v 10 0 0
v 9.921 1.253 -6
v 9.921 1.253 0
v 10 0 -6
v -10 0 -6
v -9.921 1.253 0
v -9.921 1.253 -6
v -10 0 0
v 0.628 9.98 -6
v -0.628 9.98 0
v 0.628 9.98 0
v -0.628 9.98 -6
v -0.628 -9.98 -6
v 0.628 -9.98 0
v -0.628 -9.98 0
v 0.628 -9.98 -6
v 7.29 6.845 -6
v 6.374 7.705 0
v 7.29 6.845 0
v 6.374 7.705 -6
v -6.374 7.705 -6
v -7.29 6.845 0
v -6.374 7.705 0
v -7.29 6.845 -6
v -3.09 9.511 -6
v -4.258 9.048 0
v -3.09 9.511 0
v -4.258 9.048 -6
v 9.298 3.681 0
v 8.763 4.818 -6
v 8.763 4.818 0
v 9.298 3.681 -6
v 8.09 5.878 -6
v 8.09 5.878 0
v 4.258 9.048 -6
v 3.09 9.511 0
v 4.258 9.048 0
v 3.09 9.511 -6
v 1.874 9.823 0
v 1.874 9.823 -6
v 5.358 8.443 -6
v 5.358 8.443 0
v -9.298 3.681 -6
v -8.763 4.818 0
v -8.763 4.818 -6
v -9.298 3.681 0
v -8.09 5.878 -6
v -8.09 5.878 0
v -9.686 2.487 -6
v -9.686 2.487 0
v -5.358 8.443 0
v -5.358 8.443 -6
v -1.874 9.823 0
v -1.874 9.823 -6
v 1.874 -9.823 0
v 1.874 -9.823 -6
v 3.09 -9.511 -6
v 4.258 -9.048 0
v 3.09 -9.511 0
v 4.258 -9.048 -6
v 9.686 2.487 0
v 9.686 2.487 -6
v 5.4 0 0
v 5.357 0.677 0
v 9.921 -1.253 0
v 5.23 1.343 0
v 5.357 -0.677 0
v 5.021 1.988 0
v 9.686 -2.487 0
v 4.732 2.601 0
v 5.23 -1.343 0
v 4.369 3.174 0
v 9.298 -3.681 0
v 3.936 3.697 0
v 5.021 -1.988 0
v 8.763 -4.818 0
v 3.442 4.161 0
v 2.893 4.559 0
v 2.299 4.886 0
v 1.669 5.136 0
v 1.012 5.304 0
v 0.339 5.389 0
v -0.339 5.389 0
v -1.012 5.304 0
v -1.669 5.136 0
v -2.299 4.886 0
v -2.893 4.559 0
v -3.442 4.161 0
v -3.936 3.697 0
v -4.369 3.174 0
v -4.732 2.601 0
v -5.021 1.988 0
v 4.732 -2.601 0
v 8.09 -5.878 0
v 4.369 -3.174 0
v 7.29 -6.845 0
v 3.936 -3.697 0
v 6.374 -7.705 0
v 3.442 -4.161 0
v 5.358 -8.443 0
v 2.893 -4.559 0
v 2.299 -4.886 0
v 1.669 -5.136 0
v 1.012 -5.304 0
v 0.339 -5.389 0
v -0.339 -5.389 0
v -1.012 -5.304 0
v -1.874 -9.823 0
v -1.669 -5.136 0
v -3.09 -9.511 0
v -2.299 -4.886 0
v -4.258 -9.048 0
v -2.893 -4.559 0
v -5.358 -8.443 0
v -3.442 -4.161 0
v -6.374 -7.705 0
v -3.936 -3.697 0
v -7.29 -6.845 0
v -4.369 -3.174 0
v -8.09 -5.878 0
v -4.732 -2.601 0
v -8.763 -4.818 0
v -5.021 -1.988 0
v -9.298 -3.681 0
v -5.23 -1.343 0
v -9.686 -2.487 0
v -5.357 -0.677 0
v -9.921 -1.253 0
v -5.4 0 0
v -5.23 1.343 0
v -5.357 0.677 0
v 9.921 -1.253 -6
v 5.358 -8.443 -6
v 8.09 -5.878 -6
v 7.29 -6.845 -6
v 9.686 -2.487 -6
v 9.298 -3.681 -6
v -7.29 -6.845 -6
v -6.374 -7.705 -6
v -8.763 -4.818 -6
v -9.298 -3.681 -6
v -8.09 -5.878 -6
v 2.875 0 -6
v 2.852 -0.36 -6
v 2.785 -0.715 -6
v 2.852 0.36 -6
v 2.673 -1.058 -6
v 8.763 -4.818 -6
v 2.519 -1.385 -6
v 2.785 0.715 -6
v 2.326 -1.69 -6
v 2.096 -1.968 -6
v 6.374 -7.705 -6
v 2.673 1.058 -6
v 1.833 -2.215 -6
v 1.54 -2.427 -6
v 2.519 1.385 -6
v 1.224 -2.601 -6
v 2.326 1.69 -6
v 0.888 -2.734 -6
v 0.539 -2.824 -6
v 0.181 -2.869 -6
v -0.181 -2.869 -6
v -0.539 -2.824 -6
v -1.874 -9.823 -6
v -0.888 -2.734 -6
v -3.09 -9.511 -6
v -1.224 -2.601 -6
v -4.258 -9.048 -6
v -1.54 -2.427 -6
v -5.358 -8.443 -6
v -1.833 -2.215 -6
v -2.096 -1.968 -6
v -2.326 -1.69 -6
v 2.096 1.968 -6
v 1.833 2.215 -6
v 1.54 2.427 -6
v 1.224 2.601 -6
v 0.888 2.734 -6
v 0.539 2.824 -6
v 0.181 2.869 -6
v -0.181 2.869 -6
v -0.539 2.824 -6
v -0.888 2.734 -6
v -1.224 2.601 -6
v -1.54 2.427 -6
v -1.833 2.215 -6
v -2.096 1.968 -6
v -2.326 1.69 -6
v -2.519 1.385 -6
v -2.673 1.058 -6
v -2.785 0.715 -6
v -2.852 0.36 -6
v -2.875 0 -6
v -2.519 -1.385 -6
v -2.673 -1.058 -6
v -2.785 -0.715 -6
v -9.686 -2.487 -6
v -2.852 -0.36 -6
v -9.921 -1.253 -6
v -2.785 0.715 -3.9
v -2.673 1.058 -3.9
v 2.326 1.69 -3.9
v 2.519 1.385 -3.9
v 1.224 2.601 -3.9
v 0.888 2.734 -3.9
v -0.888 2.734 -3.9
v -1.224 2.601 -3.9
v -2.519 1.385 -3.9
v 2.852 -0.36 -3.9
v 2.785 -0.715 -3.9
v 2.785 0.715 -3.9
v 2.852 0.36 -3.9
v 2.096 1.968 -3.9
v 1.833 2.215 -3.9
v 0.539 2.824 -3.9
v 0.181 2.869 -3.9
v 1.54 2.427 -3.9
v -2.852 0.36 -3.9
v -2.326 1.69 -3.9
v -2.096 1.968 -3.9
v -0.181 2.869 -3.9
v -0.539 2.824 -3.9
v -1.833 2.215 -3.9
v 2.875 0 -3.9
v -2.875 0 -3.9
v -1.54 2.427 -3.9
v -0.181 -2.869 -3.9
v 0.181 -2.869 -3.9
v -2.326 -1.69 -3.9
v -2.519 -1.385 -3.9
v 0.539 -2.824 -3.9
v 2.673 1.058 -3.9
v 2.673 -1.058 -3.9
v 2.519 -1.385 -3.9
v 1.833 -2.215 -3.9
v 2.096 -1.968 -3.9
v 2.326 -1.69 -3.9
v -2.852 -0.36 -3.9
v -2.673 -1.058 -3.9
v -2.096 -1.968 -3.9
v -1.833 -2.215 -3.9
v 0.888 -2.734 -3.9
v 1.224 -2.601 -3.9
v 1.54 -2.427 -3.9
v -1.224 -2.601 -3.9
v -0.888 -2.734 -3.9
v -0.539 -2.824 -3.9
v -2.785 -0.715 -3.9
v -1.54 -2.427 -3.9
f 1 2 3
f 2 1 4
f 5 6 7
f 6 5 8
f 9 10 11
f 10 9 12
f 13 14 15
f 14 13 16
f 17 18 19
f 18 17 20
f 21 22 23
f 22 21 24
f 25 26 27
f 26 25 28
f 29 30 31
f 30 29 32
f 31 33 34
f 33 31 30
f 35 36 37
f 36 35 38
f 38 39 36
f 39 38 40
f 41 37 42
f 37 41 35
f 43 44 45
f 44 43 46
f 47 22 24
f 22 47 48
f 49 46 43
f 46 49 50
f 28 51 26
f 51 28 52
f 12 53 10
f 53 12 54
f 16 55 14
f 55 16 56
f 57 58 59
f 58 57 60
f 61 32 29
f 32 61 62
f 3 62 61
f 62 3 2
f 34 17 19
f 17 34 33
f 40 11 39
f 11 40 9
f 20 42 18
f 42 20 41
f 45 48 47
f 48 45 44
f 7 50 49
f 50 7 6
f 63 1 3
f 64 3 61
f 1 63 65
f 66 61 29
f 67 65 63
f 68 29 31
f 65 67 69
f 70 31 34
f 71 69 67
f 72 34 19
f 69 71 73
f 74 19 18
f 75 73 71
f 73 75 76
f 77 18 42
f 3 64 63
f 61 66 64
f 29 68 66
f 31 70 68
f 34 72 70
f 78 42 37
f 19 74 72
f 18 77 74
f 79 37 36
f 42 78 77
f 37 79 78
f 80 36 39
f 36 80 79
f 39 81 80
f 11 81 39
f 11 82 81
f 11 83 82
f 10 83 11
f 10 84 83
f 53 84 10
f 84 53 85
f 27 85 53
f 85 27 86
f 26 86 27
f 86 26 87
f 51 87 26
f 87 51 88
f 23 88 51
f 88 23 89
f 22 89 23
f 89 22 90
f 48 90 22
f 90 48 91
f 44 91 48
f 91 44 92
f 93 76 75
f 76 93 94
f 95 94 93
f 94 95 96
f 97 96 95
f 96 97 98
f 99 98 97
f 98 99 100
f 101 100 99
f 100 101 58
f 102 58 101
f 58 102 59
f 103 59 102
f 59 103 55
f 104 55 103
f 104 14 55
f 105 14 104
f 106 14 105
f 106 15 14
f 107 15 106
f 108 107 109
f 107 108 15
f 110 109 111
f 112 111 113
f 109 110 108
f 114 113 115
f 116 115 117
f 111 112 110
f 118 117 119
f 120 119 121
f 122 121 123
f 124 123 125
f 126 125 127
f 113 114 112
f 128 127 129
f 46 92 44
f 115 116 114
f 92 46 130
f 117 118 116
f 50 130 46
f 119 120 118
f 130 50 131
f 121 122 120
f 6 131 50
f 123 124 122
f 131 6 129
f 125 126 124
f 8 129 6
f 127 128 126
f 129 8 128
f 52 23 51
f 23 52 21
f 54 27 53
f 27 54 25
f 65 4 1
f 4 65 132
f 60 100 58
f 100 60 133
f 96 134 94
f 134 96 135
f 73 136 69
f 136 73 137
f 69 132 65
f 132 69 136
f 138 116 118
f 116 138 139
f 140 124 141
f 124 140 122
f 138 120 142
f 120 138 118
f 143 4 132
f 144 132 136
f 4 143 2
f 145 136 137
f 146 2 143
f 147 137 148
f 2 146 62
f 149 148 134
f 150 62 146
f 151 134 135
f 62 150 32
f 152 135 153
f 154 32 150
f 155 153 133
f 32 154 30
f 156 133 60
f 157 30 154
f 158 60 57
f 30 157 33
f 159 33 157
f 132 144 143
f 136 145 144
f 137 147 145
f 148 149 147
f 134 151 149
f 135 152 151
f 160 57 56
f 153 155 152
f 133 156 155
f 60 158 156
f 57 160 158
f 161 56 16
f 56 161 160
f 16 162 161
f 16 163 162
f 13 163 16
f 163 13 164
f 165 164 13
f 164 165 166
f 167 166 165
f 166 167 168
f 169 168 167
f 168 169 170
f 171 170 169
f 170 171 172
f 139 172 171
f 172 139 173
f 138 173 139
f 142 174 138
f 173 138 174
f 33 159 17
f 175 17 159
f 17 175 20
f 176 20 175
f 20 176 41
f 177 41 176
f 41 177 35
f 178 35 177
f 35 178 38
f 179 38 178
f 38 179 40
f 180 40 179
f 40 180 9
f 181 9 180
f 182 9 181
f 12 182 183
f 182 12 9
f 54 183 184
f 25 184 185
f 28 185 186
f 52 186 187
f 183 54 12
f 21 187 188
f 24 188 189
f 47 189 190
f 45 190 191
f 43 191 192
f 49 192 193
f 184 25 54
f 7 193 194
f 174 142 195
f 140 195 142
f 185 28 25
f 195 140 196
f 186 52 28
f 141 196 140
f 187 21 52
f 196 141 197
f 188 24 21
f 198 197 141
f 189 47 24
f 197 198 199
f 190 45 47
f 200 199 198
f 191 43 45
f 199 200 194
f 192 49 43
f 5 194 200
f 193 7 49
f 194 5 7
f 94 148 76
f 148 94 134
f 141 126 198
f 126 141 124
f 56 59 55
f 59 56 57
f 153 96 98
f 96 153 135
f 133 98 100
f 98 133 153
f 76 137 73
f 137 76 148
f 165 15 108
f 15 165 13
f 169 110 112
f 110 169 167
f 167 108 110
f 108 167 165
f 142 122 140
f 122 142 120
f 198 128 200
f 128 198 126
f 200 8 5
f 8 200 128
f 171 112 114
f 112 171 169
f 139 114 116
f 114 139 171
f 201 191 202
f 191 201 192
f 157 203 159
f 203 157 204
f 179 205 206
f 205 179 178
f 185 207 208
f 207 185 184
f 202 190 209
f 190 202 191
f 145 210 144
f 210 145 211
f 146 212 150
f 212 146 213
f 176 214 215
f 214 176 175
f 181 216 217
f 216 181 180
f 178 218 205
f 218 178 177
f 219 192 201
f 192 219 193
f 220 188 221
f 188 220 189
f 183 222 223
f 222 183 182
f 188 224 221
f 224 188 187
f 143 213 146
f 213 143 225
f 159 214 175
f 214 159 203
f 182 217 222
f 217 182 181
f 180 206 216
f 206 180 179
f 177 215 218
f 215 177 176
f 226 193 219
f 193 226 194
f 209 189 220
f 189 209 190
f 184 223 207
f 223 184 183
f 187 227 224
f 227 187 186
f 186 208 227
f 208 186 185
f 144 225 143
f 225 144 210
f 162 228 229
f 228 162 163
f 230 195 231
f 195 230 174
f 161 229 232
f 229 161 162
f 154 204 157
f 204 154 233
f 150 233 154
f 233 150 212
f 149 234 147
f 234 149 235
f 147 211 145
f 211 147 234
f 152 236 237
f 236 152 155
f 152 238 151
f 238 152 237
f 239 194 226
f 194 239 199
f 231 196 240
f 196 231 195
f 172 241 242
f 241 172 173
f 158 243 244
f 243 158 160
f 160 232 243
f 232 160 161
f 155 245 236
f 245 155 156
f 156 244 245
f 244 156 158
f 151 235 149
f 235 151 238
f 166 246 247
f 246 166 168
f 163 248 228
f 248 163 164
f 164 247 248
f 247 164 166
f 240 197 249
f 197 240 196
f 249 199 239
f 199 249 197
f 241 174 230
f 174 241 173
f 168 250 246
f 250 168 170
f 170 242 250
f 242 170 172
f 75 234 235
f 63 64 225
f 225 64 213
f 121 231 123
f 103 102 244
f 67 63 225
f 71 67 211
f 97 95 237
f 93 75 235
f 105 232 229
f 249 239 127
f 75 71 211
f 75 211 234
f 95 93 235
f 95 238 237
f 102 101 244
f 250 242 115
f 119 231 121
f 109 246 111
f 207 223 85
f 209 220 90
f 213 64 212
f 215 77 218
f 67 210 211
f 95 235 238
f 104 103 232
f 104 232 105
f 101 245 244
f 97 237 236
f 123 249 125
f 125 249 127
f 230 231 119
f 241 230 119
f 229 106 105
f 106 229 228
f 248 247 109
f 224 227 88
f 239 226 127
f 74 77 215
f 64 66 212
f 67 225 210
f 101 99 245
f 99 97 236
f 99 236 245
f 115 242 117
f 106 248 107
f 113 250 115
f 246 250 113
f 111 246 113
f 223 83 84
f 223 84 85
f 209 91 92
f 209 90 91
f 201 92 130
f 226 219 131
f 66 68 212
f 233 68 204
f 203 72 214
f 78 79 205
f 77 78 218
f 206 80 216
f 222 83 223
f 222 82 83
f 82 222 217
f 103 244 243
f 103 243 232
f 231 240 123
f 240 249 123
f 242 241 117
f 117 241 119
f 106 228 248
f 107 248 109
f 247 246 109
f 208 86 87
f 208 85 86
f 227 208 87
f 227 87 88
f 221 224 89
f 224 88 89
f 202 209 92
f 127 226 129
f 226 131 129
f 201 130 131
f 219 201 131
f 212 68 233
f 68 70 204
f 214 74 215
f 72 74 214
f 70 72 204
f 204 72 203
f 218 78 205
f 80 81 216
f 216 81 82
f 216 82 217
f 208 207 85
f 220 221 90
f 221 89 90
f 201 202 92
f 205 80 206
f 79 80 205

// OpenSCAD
$fn = 50;


difference() {
	union() {
		translate(v = [0, 0, -6.0000000000]) {
			cylinder(h = 6, r = 10.0000000000);
		}
		#translate(v = [0, 0, -9.0000000000]) {
			cylinder(h = 9, r = 2.8750000000);
		}
	}
	union() {
		translate(v = [0, 0, 0]) {
			rotate(a = [0, 0, 0]) {
				difference() {
					union() {
						translate(v = [0, 0, -9.0000000000]) {
							cylinder(h = 9, r = 2.6000000000);
						}
						translate(v = [0, 0, -3.9000000000]) {
							cylinder(h = 3.9000000000, r1 = 2.8750000000, r2 = 5.4000000000);
						}
						translate(v = [0, 0, -9.0000000000]) {
							cylinder(h = 9, r = 2.8750000000);
						}
						translate(v = [0, 0, -9.0000000000]) {
							cylinder(h = 9, r = 2.6000000000);
						}
					}
					union();
				}
			}
		}
	}
}
